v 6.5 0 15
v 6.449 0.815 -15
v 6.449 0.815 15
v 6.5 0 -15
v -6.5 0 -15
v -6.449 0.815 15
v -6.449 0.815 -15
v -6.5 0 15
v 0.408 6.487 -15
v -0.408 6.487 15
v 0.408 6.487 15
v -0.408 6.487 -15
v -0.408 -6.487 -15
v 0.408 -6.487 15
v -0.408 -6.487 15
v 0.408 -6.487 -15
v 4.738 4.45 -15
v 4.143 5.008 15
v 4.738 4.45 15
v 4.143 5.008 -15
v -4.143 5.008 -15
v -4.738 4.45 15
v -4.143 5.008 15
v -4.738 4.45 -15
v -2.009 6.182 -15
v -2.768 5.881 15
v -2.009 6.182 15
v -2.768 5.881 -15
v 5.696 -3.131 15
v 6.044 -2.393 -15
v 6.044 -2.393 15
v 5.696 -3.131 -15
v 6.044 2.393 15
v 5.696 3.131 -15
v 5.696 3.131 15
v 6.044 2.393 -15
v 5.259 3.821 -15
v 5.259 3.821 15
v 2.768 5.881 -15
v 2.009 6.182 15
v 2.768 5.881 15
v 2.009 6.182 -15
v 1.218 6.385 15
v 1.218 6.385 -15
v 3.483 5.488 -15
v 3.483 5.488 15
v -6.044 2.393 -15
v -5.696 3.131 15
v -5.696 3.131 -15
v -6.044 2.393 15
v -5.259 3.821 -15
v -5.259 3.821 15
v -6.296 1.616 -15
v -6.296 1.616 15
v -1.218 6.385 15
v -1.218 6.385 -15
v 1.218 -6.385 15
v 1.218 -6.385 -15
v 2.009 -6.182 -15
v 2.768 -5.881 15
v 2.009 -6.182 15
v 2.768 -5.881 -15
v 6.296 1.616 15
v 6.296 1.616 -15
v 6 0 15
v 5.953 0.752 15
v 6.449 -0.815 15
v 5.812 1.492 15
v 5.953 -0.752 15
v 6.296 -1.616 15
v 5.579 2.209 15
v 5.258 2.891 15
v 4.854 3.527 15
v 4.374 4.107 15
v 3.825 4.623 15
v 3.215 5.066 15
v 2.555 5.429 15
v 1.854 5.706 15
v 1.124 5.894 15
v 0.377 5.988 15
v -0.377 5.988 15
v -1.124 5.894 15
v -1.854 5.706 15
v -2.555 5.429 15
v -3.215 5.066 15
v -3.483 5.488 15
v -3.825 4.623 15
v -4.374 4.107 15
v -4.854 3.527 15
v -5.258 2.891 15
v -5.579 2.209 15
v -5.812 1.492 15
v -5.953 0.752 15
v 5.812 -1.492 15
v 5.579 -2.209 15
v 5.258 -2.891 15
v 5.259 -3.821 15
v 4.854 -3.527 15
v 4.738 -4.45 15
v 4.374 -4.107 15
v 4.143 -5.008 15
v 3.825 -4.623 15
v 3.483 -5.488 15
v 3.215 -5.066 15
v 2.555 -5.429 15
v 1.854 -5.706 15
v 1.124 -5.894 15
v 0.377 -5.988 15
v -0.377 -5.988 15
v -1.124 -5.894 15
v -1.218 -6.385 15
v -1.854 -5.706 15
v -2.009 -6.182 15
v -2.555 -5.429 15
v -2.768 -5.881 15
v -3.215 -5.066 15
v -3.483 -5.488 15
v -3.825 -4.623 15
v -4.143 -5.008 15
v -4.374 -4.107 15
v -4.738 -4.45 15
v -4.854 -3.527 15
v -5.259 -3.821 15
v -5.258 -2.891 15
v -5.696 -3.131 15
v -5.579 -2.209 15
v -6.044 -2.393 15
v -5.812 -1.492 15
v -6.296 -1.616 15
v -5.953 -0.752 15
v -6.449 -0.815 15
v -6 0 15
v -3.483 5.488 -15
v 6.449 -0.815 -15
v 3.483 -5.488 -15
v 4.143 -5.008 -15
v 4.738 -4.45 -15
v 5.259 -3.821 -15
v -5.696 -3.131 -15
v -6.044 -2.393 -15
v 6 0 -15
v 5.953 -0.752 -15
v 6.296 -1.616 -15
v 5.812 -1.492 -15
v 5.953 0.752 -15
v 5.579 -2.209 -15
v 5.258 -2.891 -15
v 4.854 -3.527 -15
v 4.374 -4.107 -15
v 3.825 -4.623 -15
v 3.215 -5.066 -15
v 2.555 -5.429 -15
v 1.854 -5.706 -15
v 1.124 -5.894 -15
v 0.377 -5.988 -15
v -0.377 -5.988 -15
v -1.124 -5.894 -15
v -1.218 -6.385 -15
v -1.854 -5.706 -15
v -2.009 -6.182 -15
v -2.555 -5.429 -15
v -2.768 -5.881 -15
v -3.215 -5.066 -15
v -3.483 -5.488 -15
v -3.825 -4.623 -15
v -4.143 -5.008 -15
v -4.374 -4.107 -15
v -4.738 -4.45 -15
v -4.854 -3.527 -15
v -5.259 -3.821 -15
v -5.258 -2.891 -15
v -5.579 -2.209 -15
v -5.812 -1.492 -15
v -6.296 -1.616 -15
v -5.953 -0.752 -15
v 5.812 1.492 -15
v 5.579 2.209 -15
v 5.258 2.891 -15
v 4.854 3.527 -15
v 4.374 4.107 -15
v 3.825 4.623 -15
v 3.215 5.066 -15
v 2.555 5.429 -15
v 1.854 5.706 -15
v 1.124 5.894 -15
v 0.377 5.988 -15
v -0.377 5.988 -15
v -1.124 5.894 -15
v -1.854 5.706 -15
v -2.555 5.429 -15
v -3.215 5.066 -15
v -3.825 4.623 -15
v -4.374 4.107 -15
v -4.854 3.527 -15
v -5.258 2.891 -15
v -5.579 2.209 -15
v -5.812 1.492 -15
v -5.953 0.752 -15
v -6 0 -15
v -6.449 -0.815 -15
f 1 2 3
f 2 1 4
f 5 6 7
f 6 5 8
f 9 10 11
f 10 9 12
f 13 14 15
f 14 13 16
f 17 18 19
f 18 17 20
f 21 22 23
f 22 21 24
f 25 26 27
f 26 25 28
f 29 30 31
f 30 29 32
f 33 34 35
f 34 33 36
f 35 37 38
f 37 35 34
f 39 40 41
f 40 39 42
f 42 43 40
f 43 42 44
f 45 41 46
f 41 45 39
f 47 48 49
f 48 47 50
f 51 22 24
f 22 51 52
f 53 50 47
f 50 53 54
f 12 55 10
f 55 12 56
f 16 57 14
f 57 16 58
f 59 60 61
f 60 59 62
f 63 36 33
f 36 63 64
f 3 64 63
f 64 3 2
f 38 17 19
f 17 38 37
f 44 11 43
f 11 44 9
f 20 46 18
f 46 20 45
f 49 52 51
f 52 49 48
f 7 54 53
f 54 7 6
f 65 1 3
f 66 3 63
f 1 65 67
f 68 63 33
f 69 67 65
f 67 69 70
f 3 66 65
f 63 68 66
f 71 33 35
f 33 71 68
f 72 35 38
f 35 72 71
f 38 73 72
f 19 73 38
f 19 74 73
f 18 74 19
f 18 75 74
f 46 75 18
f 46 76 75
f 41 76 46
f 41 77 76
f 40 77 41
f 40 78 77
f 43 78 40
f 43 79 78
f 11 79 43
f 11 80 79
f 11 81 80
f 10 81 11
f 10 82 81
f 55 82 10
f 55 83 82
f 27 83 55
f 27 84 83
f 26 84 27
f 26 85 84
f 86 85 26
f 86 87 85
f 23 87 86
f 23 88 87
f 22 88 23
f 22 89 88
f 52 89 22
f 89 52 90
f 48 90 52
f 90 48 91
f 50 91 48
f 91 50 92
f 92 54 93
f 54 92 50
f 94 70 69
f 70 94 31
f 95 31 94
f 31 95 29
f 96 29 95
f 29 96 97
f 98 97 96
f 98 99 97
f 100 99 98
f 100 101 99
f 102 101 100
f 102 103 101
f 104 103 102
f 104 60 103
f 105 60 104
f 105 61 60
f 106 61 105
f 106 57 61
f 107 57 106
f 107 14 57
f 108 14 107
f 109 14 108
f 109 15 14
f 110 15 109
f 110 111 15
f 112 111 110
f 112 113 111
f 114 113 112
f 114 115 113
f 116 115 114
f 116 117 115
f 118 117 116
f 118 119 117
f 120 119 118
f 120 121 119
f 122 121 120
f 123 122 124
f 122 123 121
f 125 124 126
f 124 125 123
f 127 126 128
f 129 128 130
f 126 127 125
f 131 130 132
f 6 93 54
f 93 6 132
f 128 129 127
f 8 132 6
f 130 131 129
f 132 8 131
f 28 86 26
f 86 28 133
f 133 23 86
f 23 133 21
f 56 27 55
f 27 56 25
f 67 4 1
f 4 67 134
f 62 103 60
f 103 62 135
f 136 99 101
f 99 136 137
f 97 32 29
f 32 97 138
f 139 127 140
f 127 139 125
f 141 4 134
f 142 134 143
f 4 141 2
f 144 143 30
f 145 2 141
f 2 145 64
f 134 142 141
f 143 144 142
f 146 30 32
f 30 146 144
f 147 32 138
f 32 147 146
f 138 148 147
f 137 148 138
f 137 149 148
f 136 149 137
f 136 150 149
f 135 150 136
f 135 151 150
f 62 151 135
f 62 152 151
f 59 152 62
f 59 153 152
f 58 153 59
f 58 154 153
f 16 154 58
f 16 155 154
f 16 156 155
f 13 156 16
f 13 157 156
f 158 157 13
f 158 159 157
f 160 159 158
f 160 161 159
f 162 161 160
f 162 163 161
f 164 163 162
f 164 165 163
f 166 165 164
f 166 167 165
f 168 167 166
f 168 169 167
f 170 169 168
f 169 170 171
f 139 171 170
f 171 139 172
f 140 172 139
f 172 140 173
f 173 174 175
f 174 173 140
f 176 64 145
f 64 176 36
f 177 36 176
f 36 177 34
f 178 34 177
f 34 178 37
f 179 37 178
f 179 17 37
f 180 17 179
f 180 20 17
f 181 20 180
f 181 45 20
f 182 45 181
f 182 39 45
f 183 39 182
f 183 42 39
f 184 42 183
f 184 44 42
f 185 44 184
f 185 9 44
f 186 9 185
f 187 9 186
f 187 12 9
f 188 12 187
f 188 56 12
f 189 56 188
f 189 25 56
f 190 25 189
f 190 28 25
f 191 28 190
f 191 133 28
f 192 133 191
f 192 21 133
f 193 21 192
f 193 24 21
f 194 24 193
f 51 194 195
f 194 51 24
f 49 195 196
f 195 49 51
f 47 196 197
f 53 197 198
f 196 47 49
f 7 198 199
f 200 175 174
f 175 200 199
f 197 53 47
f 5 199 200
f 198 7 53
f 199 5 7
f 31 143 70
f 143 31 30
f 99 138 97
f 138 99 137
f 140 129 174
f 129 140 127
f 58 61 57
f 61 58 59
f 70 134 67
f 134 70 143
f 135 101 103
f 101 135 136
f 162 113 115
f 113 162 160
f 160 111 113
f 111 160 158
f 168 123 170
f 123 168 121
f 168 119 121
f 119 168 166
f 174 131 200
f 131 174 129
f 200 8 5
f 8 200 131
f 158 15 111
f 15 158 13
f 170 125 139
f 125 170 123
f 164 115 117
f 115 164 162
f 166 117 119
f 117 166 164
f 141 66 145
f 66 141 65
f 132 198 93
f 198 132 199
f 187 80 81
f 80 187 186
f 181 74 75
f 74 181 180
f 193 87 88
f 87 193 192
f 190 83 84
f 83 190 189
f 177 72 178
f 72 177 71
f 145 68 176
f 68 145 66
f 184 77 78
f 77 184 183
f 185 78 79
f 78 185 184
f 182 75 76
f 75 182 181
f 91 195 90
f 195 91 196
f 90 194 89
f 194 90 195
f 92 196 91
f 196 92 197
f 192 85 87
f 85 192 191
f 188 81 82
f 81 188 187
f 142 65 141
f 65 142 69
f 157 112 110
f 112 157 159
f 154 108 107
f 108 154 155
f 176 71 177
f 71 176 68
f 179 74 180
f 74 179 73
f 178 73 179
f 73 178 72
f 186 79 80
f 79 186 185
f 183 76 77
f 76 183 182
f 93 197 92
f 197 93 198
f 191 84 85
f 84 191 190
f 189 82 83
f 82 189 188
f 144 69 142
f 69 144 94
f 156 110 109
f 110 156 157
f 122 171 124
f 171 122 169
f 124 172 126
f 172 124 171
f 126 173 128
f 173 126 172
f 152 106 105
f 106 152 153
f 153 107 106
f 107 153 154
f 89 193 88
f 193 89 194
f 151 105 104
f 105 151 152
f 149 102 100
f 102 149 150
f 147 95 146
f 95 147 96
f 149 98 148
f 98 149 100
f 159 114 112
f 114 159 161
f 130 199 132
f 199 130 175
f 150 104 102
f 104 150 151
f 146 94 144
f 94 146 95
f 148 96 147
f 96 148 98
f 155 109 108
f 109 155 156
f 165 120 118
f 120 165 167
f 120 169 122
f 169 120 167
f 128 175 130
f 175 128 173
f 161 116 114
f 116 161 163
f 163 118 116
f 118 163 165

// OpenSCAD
$fn = 50;


difference() {
	union() {
		translate(v = [0, 0, -15.0000000000]) {
			cylinder(h = 30, r = 6.5000000000);
		}
	}
	union() {
		translate(v = [0, 0, -100.0000000000]) {
			cylinder(h = 200, r = 6);
		}
	}
}
